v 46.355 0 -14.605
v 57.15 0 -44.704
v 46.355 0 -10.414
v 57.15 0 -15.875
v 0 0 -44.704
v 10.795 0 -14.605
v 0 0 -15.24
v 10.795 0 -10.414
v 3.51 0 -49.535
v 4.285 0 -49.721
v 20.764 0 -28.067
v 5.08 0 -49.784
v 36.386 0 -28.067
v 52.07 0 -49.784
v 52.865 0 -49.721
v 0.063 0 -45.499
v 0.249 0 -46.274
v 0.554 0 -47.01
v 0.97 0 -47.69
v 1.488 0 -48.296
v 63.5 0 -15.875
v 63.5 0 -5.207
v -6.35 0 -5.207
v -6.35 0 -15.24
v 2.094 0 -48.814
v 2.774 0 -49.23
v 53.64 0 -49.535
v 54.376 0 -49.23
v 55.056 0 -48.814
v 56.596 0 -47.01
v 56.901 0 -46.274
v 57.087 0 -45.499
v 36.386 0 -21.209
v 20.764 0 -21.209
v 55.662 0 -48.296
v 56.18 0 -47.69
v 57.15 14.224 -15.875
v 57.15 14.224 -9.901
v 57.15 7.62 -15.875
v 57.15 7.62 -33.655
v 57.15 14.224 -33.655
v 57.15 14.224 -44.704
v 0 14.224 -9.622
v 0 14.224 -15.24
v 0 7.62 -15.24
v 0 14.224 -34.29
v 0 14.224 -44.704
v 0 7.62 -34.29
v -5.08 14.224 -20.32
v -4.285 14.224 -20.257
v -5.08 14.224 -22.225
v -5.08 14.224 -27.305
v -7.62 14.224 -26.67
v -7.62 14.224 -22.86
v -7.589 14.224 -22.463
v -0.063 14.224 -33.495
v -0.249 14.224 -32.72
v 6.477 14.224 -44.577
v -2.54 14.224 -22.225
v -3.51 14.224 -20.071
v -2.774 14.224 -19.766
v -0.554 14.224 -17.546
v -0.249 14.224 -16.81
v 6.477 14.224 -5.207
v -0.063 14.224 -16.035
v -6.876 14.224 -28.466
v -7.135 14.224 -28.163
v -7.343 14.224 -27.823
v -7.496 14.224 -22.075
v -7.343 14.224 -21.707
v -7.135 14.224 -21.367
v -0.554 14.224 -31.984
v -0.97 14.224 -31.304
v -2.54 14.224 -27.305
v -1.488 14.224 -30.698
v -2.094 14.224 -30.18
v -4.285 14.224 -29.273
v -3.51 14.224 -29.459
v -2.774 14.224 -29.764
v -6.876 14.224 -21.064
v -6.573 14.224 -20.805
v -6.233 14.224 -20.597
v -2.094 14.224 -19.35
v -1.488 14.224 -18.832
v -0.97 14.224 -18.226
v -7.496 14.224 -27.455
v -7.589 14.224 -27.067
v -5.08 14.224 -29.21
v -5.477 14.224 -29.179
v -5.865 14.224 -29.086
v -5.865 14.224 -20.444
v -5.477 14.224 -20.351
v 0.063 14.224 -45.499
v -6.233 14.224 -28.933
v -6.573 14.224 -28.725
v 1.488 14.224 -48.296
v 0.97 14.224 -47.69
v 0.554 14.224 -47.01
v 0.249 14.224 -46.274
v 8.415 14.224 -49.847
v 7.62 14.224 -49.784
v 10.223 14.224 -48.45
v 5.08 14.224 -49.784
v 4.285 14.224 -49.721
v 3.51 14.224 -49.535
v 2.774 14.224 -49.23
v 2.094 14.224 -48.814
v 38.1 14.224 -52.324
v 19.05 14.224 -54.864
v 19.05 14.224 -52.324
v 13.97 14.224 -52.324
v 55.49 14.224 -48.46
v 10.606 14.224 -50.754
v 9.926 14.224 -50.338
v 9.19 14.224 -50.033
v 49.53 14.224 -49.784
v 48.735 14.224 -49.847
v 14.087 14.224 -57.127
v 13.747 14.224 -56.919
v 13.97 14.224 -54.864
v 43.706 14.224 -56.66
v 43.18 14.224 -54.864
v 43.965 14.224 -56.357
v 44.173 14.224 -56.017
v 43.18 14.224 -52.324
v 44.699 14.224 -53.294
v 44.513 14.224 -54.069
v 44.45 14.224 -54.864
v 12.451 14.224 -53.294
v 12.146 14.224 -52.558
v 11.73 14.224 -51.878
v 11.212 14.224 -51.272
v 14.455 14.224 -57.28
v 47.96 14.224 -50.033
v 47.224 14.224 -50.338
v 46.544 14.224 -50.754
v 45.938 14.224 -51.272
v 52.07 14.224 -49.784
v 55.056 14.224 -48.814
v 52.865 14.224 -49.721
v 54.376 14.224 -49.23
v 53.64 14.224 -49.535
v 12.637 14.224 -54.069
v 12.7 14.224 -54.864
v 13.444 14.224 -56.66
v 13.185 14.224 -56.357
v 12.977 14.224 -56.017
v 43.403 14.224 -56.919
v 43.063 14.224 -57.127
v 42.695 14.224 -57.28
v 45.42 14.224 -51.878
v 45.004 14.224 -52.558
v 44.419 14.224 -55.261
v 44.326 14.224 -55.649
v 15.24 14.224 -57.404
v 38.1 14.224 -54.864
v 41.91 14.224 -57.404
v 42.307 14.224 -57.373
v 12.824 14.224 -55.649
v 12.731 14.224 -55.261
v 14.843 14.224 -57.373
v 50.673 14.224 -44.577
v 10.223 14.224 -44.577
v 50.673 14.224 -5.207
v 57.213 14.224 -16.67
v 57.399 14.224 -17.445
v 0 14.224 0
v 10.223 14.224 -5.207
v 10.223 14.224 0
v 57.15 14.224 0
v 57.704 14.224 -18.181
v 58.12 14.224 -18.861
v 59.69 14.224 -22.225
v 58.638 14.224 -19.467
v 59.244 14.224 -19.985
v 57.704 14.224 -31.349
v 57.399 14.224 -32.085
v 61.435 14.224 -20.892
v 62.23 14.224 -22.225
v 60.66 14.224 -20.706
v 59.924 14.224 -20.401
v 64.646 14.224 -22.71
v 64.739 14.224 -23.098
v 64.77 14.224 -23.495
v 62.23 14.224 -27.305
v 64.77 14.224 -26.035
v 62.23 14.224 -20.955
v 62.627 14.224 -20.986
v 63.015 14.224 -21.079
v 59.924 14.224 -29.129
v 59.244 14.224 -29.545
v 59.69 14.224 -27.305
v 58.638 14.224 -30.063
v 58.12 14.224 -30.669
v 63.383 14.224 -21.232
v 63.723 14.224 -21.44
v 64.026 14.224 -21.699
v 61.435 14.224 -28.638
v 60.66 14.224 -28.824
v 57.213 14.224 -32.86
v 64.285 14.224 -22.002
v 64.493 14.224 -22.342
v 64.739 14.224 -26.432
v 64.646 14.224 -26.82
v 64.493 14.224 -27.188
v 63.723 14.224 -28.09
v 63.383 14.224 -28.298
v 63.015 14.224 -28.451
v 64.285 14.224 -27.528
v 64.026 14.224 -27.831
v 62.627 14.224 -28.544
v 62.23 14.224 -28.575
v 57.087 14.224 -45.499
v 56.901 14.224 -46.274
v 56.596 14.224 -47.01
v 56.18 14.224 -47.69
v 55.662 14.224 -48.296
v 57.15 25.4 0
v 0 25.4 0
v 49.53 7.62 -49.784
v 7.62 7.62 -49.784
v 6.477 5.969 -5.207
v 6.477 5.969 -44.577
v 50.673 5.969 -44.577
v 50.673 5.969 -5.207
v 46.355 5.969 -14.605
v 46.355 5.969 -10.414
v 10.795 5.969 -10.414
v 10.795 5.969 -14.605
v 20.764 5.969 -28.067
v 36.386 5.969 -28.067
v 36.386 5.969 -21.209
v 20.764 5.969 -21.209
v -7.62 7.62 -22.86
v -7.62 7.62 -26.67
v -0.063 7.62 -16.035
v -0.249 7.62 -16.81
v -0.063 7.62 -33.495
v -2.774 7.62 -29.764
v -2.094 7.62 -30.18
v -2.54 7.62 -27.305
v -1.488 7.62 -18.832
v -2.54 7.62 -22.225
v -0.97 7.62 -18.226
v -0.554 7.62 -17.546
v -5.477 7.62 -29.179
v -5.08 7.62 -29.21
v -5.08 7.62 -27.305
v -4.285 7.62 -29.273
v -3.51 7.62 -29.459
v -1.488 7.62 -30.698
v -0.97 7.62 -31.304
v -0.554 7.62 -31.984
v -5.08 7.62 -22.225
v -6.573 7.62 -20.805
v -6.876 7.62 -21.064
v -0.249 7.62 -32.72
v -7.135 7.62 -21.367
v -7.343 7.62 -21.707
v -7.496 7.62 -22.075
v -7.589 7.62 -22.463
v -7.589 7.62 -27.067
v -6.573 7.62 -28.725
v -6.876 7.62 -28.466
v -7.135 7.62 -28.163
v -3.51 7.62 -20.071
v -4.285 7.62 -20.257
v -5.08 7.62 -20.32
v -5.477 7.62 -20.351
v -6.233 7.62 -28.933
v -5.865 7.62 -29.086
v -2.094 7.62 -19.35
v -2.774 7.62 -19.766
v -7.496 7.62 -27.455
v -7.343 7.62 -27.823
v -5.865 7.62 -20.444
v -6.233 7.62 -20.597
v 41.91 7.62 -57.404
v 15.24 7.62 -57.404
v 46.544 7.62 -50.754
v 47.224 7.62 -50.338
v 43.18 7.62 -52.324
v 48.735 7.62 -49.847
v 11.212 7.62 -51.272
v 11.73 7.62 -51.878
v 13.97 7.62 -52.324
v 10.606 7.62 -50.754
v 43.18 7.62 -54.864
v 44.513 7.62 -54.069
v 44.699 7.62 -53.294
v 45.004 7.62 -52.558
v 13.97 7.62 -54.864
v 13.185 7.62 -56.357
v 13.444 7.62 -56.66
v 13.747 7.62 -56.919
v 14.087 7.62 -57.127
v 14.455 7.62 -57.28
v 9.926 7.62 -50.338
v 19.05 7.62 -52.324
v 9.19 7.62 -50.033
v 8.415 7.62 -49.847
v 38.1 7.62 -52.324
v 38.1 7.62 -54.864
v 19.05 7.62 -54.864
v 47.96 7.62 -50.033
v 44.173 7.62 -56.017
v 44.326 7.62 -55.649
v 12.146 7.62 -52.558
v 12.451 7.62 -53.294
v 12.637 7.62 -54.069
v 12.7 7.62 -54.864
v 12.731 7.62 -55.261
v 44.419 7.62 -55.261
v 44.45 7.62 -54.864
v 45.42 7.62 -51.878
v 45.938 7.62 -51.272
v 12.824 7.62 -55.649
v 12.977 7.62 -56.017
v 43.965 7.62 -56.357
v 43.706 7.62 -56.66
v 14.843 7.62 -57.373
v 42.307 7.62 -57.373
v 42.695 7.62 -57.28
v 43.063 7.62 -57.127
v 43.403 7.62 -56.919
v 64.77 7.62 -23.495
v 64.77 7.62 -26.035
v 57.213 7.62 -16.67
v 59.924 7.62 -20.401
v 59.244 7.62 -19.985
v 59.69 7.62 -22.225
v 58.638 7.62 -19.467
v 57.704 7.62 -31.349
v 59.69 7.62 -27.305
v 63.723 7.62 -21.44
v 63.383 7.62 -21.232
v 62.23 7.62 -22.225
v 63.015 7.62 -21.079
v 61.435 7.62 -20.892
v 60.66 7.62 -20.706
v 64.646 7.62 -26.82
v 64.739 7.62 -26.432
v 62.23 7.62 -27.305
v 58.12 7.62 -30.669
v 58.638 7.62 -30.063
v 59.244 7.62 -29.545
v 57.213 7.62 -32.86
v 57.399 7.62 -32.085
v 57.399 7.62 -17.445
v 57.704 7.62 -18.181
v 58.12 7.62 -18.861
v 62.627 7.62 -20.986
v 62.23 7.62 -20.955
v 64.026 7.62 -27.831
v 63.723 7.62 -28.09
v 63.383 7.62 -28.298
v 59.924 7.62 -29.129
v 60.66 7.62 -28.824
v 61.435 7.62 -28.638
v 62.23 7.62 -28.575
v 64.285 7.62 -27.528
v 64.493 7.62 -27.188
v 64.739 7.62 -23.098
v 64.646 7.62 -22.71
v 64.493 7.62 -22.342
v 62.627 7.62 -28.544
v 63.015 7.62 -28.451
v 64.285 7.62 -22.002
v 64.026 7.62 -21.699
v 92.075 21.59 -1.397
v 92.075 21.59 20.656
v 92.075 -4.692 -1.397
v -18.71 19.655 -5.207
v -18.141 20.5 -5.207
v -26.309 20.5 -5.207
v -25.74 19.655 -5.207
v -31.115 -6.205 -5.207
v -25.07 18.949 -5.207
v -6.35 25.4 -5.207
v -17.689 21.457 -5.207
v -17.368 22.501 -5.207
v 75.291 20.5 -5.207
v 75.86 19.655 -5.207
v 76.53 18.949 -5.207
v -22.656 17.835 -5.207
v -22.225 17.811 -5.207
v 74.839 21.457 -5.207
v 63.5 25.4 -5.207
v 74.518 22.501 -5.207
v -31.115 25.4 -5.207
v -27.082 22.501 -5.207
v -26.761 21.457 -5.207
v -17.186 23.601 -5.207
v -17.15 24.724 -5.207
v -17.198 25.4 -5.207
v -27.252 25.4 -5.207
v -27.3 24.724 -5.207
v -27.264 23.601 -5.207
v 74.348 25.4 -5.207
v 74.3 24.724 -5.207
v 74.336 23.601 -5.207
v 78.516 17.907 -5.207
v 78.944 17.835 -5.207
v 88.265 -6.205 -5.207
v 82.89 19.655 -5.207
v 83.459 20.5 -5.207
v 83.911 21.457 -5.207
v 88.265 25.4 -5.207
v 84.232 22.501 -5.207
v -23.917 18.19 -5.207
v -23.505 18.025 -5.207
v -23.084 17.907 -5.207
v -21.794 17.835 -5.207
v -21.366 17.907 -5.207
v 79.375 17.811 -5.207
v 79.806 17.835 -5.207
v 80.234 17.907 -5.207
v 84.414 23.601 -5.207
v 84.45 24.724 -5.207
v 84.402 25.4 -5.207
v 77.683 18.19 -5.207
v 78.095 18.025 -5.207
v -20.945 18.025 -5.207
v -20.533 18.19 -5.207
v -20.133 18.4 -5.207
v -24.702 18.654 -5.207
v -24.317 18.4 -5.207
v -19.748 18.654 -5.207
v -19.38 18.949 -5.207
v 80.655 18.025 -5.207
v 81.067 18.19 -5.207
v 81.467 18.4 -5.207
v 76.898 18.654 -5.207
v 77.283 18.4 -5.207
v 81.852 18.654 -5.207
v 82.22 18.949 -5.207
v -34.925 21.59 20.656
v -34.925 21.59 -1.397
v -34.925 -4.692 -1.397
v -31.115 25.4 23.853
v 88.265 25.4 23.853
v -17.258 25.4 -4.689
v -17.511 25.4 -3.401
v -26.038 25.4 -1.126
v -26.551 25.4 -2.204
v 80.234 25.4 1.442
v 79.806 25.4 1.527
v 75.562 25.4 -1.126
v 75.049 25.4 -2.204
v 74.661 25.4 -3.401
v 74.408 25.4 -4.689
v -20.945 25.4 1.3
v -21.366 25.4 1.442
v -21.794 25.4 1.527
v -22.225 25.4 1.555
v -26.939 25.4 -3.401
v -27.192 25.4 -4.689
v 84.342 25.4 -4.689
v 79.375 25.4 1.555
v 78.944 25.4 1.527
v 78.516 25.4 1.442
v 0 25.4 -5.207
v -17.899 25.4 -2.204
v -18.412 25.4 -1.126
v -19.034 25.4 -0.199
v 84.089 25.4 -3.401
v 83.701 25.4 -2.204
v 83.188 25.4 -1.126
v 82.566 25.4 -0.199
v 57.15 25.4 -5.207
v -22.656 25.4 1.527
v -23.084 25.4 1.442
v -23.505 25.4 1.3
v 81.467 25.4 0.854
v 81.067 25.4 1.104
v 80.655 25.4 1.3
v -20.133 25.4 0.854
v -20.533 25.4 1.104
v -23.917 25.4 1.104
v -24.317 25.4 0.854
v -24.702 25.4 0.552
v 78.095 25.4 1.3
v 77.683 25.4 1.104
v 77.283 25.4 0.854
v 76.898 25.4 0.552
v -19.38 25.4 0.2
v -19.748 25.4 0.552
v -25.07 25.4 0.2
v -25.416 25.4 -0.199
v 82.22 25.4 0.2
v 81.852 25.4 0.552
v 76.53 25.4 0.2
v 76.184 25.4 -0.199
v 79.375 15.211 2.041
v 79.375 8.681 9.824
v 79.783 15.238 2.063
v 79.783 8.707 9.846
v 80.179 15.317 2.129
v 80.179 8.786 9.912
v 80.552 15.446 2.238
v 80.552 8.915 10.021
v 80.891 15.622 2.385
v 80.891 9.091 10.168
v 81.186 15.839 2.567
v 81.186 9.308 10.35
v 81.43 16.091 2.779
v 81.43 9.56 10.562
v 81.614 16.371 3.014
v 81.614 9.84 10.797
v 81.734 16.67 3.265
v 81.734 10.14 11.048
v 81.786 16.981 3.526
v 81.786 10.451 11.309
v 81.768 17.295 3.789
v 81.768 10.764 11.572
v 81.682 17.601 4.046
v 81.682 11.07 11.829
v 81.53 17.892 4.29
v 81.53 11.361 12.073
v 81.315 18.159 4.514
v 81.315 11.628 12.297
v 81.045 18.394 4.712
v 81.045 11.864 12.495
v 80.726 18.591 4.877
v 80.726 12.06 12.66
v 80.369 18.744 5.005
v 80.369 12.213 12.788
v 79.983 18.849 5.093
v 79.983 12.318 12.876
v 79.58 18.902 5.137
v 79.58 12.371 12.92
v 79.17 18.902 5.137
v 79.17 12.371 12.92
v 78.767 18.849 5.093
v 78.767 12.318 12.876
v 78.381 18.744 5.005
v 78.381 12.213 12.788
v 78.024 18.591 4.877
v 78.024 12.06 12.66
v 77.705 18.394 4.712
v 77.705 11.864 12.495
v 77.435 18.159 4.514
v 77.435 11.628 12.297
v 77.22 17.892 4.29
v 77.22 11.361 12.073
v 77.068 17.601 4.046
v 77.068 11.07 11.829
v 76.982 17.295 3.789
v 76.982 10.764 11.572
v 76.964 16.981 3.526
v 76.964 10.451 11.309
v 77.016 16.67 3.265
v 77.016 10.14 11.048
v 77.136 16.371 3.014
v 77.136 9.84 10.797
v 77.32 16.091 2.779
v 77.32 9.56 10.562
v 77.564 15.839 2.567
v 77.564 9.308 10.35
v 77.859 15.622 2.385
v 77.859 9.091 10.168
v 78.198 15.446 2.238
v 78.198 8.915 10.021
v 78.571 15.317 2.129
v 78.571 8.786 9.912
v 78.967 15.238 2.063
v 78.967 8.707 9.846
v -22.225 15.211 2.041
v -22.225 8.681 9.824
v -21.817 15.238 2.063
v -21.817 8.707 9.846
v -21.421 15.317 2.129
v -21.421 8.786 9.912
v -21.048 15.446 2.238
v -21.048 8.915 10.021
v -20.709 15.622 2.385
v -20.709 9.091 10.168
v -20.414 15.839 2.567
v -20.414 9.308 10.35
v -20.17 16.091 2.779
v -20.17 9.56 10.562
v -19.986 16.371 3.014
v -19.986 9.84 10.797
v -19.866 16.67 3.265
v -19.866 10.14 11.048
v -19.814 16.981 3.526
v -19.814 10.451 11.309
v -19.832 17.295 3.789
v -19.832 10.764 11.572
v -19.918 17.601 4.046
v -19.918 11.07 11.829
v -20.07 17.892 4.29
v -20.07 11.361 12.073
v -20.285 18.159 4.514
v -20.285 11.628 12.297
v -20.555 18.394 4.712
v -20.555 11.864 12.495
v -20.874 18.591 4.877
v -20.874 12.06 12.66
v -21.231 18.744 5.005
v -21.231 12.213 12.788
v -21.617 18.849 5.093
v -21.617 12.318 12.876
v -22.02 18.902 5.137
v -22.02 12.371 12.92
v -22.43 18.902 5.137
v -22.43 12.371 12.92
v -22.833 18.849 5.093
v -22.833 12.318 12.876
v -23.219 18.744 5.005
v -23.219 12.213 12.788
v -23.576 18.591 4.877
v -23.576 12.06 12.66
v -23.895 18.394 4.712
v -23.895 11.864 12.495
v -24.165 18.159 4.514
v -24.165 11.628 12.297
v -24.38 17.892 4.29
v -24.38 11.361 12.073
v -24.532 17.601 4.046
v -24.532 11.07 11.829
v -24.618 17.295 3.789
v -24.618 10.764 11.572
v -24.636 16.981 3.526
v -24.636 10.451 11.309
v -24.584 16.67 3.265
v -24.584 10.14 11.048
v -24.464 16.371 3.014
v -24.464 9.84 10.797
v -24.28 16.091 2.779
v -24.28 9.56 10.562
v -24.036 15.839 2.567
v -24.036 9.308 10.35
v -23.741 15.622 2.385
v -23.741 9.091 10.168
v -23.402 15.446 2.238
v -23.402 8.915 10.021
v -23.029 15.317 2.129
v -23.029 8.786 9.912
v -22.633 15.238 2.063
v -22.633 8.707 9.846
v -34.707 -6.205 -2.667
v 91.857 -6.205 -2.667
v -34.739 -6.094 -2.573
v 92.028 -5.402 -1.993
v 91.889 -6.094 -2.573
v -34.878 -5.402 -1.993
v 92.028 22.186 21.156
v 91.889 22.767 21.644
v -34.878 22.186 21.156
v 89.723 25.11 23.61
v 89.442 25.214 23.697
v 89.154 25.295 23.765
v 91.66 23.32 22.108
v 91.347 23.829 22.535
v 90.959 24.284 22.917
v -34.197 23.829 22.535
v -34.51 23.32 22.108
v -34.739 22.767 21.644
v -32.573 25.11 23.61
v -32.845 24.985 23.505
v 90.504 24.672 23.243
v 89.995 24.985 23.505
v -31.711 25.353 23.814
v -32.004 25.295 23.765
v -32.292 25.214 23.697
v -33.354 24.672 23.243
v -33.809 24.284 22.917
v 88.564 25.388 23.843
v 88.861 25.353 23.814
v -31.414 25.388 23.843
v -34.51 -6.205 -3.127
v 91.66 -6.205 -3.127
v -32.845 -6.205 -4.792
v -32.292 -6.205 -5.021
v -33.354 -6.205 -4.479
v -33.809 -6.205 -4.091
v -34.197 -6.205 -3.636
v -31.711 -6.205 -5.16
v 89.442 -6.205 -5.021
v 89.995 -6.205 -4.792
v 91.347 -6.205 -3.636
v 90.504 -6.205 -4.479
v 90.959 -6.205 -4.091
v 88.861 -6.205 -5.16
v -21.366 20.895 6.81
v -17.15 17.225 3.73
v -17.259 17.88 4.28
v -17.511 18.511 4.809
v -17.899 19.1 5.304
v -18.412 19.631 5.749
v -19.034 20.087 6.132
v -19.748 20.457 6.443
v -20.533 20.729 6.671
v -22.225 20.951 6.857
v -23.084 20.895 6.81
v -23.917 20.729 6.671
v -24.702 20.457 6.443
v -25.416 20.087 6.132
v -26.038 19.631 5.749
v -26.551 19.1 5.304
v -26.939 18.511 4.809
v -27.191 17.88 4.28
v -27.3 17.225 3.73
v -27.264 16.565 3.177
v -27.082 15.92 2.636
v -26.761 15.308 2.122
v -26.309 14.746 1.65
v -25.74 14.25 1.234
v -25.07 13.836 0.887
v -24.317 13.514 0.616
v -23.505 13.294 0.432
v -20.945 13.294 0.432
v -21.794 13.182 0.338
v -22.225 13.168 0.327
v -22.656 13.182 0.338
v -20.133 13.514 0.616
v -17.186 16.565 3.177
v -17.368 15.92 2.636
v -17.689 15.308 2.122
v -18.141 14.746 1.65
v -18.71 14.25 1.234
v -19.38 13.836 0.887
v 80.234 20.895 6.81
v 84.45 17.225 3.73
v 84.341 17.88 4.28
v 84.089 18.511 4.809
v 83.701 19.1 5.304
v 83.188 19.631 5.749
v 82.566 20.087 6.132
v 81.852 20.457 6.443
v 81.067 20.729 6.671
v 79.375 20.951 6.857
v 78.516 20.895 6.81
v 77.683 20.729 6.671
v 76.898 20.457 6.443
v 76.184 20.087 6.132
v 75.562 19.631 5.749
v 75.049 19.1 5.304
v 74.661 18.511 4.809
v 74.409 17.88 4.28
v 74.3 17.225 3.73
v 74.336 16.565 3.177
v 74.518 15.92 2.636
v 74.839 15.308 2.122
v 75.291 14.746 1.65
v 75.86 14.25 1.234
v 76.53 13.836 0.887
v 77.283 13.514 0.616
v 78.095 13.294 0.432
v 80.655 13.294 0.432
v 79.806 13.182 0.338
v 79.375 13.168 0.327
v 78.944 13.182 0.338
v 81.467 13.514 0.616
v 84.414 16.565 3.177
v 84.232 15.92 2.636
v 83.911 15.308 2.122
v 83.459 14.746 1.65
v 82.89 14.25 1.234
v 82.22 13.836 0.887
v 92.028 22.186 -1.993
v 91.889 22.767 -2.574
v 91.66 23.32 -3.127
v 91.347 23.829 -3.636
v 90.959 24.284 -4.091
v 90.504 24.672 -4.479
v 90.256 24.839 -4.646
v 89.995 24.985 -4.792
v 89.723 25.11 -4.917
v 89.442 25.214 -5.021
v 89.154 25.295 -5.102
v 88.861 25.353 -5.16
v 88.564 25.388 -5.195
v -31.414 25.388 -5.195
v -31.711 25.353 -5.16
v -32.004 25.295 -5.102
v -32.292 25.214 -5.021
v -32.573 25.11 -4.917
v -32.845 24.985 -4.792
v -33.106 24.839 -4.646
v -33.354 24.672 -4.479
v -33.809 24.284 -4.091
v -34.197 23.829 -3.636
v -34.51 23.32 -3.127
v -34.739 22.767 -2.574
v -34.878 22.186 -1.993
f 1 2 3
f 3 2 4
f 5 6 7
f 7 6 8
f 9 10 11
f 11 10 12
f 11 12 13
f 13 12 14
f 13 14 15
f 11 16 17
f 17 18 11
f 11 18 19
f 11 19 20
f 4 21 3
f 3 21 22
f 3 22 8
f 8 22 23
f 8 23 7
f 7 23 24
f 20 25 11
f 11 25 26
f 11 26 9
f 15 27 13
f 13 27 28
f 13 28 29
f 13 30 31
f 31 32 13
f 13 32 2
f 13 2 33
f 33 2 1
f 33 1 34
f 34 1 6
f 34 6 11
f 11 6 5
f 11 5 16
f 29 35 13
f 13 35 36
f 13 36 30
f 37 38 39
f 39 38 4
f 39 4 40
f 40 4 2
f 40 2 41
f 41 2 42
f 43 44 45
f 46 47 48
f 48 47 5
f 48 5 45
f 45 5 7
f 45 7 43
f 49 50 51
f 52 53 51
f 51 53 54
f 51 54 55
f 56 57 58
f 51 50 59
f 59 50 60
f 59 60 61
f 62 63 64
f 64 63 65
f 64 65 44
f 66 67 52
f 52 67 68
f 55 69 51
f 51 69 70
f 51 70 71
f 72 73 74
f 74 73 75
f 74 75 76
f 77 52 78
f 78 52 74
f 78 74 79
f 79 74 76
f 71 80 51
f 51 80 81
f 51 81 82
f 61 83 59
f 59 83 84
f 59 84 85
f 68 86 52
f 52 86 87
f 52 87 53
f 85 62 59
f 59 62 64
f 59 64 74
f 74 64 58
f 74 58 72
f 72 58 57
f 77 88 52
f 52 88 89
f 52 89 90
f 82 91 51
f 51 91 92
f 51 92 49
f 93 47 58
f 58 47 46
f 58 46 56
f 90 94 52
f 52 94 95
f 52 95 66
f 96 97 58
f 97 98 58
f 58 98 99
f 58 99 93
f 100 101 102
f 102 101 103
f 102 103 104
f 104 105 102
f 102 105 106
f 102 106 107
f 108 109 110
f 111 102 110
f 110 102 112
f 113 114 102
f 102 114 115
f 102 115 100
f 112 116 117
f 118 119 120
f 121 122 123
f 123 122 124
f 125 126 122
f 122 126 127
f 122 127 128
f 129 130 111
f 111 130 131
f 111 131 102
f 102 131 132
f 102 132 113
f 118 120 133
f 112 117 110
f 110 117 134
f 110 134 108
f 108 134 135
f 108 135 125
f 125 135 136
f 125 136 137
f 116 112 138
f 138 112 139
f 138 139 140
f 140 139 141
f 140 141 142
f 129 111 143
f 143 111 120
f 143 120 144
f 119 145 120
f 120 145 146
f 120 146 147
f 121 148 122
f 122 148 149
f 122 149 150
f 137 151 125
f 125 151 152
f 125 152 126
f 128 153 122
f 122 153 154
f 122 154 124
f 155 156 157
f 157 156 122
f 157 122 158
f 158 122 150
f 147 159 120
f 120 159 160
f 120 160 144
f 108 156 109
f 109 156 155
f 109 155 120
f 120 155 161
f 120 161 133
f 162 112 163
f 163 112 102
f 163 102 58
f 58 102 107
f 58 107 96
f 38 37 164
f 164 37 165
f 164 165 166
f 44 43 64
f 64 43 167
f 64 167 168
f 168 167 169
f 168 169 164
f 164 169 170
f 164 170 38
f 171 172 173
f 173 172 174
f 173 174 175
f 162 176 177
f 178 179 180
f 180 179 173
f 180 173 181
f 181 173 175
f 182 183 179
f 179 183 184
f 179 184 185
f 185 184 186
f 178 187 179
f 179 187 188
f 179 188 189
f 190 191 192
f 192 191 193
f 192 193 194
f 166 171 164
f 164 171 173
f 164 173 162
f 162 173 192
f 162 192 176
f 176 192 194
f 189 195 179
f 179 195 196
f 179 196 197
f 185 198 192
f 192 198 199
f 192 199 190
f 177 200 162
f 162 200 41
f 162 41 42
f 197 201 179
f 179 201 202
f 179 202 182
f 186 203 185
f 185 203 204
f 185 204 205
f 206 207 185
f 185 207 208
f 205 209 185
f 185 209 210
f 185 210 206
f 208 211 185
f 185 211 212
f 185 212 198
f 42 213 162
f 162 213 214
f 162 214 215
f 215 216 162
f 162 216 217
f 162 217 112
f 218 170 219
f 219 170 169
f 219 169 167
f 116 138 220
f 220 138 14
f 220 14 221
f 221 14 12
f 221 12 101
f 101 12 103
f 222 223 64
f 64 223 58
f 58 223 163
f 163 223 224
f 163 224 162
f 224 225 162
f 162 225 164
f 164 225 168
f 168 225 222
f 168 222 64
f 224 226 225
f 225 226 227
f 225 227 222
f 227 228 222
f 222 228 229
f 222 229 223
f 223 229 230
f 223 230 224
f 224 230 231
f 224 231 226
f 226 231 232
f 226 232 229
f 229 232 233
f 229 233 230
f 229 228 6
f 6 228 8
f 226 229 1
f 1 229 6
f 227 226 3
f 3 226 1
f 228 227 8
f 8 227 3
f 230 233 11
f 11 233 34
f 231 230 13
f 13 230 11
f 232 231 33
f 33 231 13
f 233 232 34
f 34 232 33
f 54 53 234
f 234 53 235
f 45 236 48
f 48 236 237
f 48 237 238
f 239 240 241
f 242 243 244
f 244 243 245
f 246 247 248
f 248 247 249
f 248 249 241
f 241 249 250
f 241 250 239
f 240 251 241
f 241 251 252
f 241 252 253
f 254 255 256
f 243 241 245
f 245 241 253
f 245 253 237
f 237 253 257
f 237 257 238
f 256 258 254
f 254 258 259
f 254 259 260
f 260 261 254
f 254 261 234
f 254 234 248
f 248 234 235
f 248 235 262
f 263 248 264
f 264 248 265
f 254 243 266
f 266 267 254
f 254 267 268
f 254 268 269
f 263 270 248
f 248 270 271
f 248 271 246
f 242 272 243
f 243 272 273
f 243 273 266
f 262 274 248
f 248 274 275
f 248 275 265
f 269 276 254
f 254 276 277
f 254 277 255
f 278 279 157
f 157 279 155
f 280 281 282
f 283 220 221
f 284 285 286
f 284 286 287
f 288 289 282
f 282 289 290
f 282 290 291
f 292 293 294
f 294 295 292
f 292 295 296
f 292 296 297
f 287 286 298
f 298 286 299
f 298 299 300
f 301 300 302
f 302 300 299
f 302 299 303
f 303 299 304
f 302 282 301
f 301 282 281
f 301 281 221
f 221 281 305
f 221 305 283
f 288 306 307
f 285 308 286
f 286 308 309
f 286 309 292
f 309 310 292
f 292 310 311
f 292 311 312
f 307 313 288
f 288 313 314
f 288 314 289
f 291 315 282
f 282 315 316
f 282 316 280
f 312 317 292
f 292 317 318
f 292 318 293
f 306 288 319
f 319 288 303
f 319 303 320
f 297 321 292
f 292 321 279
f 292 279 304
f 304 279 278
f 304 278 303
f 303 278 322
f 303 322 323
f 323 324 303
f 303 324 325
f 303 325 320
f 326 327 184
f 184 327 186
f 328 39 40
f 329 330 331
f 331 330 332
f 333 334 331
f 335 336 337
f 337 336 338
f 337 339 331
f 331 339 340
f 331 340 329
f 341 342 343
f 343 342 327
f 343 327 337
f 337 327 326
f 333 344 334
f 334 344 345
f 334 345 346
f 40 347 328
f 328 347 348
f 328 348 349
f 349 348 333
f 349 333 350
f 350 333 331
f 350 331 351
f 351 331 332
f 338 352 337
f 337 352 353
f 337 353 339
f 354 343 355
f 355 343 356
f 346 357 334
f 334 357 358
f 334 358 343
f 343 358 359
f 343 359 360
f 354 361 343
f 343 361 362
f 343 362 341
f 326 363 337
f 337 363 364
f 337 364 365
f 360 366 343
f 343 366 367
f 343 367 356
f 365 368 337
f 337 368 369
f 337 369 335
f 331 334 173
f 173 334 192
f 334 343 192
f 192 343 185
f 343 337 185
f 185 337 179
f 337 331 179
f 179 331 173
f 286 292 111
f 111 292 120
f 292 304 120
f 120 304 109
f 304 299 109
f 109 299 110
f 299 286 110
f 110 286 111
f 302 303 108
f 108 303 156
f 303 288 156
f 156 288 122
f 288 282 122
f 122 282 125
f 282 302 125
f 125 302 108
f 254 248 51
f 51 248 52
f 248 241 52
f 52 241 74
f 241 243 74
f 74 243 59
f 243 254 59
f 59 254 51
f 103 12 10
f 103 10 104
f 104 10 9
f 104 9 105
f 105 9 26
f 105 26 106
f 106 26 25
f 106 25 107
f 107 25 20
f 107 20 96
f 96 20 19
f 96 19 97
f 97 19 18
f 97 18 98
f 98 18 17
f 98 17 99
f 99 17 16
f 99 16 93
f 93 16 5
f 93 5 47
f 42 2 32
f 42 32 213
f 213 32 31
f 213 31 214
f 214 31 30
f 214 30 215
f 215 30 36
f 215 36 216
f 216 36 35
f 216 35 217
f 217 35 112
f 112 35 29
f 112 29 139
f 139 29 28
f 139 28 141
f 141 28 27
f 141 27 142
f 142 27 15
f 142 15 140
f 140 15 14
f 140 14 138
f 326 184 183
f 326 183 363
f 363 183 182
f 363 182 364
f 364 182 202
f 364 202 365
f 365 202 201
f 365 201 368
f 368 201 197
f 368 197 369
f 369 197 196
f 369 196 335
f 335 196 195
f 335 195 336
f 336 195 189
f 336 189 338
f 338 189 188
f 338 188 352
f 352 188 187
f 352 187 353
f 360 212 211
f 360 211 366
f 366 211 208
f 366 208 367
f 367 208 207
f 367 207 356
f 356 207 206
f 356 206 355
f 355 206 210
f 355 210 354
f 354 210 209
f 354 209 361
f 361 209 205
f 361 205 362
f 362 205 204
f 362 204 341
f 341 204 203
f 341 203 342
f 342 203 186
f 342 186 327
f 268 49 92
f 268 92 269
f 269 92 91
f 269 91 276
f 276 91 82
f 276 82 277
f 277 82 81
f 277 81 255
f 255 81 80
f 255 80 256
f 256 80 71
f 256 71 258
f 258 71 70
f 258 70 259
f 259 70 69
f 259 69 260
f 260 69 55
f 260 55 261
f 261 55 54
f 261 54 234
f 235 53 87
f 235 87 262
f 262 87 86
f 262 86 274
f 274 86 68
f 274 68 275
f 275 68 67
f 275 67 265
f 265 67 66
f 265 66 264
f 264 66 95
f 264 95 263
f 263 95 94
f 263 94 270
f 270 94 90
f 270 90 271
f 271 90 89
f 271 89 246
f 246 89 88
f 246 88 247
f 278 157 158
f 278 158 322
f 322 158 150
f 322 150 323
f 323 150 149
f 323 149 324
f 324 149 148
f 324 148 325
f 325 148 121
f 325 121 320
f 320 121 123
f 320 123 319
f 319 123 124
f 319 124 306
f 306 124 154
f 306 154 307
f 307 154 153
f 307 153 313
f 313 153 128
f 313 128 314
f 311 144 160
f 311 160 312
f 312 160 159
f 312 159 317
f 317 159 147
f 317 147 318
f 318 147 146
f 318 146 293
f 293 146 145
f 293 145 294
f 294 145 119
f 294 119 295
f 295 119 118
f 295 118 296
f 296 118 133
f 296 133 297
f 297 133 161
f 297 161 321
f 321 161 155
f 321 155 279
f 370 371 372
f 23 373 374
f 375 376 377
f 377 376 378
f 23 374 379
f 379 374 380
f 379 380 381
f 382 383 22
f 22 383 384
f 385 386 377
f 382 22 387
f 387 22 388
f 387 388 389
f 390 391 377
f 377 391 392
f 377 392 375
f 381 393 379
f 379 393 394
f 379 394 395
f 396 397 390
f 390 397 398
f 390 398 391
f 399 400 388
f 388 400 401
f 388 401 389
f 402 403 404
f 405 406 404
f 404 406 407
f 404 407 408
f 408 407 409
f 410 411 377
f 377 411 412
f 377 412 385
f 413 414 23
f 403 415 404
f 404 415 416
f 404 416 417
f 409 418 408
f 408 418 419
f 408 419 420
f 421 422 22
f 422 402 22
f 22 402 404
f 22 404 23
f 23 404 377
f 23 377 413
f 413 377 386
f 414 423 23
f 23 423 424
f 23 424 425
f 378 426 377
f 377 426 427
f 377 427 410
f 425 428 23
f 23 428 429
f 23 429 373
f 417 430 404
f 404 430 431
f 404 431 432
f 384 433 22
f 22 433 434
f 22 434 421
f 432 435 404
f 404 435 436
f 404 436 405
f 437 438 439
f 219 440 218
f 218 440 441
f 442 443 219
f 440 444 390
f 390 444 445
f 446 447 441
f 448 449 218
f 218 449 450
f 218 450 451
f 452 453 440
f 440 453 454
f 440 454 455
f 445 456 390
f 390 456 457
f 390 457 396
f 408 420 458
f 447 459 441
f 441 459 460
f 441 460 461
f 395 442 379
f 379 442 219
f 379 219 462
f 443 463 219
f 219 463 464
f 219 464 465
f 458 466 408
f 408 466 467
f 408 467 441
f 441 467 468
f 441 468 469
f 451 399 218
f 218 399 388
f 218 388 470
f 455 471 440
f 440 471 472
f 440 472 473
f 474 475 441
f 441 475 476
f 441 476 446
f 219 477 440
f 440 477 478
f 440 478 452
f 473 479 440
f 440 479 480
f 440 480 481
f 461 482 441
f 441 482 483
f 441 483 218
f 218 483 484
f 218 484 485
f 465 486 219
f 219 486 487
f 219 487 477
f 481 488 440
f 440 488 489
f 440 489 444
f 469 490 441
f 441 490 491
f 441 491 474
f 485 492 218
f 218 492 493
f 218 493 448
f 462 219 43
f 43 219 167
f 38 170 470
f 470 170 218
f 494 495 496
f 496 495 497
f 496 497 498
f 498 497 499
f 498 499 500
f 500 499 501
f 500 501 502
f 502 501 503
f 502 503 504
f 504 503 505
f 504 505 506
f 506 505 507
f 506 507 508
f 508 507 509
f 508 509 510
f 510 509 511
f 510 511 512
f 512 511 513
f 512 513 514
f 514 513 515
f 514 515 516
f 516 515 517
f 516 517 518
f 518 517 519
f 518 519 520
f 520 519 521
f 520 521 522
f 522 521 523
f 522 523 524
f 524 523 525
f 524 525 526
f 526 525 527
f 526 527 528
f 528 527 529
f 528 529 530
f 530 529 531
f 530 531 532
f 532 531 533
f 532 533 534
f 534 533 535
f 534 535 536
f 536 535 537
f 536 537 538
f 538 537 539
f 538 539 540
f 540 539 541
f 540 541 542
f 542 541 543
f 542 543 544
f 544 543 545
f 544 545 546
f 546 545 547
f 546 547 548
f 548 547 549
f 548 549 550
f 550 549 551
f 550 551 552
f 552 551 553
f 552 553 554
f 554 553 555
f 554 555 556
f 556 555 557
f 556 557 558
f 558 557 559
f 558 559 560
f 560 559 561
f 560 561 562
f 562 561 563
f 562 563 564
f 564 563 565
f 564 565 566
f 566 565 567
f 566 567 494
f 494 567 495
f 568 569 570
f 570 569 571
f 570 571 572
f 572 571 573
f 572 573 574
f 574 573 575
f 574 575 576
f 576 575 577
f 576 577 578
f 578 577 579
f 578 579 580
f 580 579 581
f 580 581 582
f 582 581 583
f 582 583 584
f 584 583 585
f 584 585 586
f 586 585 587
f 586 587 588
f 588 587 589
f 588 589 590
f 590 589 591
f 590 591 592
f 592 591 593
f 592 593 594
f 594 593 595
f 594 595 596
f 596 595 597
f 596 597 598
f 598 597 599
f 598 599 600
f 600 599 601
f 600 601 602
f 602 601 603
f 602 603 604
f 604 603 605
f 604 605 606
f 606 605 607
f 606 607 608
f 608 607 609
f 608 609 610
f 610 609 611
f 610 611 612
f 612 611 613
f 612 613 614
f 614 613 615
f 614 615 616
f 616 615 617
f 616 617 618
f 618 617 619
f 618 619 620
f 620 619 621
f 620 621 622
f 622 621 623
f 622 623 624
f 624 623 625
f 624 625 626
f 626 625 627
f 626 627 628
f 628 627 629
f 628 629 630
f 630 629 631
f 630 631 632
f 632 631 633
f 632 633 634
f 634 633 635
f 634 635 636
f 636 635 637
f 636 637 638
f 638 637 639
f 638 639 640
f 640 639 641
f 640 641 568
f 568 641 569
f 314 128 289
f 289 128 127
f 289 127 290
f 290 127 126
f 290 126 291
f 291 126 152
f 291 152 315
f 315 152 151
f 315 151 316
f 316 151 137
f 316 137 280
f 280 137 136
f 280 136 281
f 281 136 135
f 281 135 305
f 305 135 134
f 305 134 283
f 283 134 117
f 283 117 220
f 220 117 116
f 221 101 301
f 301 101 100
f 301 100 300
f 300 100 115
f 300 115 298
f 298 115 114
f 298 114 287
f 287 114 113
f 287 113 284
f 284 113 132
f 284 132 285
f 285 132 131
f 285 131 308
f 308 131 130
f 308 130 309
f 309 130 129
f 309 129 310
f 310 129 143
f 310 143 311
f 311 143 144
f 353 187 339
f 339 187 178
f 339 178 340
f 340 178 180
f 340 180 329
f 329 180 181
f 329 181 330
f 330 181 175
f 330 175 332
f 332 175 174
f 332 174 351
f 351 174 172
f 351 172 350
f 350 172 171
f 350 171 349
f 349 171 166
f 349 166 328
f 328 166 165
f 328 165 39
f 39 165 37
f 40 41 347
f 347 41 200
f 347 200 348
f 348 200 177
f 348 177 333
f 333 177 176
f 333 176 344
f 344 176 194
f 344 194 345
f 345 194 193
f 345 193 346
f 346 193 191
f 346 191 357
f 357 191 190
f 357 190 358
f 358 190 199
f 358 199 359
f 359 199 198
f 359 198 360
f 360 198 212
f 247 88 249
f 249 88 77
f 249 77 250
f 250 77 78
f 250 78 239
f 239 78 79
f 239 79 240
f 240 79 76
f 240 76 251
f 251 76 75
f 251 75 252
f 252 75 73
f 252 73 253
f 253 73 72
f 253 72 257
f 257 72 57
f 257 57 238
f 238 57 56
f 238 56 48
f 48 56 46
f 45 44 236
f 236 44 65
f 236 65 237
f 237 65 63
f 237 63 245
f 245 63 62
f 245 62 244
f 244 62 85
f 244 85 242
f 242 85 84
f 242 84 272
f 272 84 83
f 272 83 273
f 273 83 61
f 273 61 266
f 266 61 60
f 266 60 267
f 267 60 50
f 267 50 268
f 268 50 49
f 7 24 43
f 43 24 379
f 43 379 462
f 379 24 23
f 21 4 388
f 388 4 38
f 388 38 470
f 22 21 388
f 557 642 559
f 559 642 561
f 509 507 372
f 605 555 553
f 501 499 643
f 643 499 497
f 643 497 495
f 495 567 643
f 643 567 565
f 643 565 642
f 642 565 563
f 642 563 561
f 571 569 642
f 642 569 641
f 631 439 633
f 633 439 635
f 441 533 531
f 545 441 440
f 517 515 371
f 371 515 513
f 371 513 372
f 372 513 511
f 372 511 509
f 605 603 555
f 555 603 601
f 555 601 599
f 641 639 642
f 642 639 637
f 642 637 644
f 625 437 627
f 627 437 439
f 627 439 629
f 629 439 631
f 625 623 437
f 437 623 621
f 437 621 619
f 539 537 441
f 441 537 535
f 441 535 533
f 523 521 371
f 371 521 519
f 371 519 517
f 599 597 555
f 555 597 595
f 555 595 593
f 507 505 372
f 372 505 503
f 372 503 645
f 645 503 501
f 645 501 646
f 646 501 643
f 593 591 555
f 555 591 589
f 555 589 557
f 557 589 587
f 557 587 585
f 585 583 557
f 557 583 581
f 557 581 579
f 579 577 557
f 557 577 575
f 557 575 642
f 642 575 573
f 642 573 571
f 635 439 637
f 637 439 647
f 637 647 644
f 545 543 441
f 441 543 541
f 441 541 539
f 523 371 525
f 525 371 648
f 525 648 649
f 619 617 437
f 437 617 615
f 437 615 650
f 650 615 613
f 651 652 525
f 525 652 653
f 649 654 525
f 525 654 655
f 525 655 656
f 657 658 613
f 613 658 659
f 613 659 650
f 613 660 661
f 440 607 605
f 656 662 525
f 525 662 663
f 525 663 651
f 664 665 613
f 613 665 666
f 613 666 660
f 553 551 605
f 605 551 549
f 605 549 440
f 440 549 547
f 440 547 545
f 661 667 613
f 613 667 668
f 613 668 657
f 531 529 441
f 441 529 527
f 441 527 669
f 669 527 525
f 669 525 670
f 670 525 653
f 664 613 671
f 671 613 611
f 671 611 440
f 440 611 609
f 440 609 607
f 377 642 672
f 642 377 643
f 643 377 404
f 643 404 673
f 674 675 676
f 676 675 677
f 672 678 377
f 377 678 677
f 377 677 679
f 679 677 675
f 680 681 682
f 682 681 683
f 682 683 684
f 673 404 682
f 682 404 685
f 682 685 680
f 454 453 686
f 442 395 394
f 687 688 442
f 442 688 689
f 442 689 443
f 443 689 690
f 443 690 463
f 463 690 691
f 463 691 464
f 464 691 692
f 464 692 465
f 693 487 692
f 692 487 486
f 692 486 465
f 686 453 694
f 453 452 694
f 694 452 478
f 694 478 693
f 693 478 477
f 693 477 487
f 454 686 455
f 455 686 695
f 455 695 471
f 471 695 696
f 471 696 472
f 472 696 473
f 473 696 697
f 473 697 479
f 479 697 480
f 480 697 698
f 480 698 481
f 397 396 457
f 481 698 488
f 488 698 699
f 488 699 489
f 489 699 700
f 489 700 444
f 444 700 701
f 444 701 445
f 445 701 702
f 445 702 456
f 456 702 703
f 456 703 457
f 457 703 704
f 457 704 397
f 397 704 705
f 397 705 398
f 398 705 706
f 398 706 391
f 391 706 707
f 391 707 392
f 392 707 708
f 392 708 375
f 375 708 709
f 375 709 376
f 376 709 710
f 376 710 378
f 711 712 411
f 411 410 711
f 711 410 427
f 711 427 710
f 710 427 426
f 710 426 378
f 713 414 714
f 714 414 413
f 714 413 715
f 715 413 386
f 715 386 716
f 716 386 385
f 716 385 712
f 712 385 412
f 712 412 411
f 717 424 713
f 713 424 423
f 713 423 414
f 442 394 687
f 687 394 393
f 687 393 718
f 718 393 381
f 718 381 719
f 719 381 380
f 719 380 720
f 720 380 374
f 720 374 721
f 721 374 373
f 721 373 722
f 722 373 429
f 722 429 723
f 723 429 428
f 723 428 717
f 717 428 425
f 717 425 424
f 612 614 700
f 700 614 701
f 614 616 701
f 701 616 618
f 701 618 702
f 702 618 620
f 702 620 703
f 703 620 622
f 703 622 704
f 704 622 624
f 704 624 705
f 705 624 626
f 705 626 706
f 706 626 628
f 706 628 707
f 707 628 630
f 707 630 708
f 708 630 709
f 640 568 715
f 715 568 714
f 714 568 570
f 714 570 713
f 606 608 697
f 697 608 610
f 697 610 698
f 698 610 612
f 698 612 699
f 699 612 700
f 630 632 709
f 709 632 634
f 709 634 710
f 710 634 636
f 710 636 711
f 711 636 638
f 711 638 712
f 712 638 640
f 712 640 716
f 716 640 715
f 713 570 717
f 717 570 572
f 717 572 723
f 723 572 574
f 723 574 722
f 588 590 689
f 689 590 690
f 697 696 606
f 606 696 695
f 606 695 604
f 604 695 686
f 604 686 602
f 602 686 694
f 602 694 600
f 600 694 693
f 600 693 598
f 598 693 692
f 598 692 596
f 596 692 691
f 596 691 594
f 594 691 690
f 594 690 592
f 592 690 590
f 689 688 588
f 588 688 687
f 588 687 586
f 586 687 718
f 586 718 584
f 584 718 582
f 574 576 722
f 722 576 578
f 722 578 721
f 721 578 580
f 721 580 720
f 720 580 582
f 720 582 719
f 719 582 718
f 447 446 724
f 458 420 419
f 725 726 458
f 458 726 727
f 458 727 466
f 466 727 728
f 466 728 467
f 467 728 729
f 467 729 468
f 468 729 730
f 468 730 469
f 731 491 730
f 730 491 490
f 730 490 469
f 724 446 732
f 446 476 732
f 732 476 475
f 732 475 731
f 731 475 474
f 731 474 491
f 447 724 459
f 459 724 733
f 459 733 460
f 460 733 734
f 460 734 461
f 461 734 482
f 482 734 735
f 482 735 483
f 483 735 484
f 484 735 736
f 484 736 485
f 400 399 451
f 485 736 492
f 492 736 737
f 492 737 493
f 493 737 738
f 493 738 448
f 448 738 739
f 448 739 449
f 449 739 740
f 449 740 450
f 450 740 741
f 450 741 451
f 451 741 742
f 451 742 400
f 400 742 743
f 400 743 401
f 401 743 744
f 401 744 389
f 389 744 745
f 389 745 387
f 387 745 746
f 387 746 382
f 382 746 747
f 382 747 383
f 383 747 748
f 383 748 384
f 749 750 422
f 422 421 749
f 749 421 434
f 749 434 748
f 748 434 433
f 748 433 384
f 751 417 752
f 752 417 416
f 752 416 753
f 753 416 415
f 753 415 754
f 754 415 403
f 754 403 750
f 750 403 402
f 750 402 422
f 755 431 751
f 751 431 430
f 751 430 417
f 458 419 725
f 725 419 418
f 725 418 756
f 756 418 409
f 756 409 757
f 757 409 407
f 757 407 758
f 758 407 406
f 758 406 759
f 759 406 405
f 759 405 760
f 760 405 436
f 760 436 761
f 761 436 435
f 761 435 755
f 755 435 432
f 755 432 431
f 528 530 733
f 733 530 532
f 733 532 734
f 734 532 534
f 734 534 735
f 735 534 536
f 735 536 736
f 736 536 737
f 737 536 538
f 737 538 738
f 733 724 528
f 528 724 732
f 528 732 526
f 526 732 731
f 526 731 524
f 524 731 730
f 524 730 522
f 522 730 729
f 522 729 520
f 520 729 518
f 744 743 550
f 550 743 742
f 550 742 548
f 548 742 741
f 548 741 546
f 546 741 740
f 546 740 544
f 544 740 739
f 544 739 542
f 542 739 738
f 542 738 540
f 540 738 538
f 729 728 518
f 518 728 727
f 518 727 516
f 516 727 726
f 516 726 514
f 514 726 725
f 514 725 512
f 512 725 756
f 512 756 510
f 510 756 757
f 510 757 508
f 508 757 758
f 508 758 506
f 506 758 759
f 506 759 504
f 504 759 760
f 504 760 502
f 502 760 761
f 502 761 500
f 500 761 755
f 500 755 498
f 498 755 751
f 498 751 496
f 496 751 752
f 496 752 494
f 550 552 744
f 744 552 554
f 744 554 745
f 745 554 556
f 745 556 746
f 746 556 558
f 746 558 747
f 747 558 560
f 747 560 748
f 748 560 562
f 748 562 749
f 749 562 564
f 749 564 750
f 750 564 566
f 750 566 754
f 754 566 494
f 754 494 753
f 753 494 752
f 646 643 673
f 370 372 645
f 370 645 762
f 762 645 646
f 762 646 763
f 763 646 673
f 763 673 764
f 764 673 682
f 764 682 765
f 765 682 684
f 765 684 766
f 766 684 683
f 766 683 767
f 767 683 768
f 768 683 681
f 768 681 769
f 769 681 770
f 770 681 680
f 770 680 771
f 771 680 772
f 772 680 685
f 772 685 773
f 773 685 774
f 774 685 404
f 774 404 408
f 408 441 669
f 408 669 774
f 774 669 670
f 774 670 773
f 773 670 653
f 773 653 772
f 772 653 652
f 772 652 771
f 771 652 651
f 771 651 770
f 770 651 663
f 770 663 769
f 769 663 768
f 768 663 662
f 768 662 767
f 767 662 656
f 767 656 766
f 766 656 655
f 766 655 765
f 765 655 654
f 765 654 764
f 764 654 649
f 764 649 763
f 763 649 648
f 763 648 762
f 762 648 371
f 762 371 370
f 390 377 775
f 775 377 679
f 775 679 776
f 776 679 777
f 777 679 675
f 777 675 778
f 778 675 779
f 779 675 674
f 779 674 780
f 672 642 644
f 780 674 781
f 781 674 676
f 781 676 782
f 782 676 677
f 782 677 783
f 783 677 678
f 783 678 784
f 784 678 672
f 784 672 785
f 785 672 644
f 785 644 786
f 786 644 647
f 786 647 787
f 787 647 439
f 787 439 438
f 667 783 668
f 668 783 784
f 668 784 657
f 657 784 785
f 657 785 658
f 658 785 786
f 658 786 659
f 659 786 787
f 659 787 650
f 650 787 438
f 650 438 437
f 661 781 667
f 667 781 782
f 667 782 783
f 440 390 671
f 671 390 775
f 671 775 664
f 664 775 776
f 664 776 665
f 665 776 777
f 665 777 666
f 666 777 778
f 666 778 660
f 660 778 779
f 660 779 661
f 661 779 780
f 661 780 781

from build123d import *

# Parameters (mm, degrees)
SKETCH2_W           = 57.15
SKETCH2_H           = 49.784
BOSS_EXTRUDE1_DEPTH = 14.224
SKETCH3_W           = 44.196
SKETCH3_H           = 39.37
CUT_EXTRUDE1_DEPTH  = 8.255
SKETCH4_W           = 35.56
SKETCH4_H           = 4.191
SKETCH4_W_2         = 15.621
SKETCH4_H_2         = 6.858
CUT_EXTRUDE2_DEPTH  = 8.255
SKETCH5_W           = 7.62
SKETCH5_H           = 8.89
SKETCH5_H_2         = 7.62
BOSS_EXTRUDE2_DEPTH = 6.604
SKETCH6_W           = 2.54
SKETCH6_H           = 5.08
SKETCH6_W_2         = 5.08
SKETCH6_H_2         = 2.54
CUT_EXTRUDE3_DEPTH  = 6.604
FILLET1_R           = 5.08
FILLET2_R           = 2.54
SKETCH7_W           = 127
SKETCH7_H           = 14.224
SKETCH7_R           = 2.38125
BOSS_EXTRUDE3_DEPTH = 5.207
BOSS_EXTRUDE4_DEPTH = 127
SKETCH11_W          = 34.925
SKETCH11_H          = 11.176
BOSS_EXTRUDE5_DEPTH = 5.207
SKETCH9_R           = 2.413
CUT_EXTRUDE4_DEPTH  = 25.4
FILLET3_R           = 5.08
FILLET4_R           = 5.08
BOSS_EXTRUDE6_DEPTH = 6.35
BOSS_EXTRUDE7_DEPTH = 6.35
BOSS_EXTRUDE8_DEPTH = 127
BOSS_EXTRUDE9_DEPTH = 127
CUT_EXTRUDE6_START  = -1.945752886
SKETCH16_R          = 2.413
CUT_EXTRUDE6_DEPTH  = 1.945752886
CUT_EXTRUDE9_START  = -22.261352
SKETCH17_R          = 5.08
CUT_EXTRUDE9_DEPTH  = 12.101352
FILLET5_R           = 3.81


with BuildPart() as part:
    # Sketch2 → Boss-Extrude1 (new body)
    with BuildSketch(Plane(origin=(0, 0, 0), x_dir=(1, 0, 0), z_dir=(0, 1, 0))):
        with Locations((28.575, 24.892)):
            Rectangle(SKETCH2_W, SKETCH2_H)
    extrude(amount=BOSS_EXTRUDE1_DEPTH)

    # Sketch3 → Cut-Extrude1 (cut)
    with BuildSketch(Plane(origin=(0, 14.224, 0), x_dir=(1, 0, 0), z_dir=(0, 1, 0))):
        with Locations((28.575, 24.892)):
            Rectangle(SKETCH3_W, SKETCH3_H)
    extrude(amount=-CUT_EXTRUDE1_DEPTH, mode=Mode.SUBTRACT)

    # Sketch4 → Cut-Extrude2 (cut)
    with BuildSketch(Plane(origin=(0, 5.969, 0), x_dir=(1, 0, 0), z_dir=(0, 1, 0))):
        with Locations((28.575, 12.5095)):
            Rectangle(SKETCH4_W, SKETCH4_H)
        with Locations((28.575, 24.638)):
            Rectangle(SKETCH4_W_2, SKETCH4_H_2)
    extrude(amount=-CUT_EXTRUDE2_DEPTH, mode=Mode.SUBTRACT)

    # Sketch5 → Boss-Extrude2 (add)
    with BuildSketch(Plane(origin=(0, 14.224, 0), x_dir=(1, 0, 0), z_dir=(0, 1, 0))):
        with Locations((-3.81, 24.765)):
            Rectangle(SKETCH5_W, SKETCH5_H)
        Polygon((12.7, 49.784), (36.83, 49.784), (44.45, 49.784), (44.45, 57.404), (36.83, 57.404), (12.7, 57.404), align=None)
        with Locations((60.96, 24.765)):
            Rectangle(SKETCH5_W, SKETCH5_H_2)
    extrude(amount=-BOSS_EXTRUDE2_DEPTH)

    # Sketch6 → Cut-Extrude3 (cut)
    with BuildSketch(Plane(origin=(0, 14.224, 0), x_dir=(1, 0, 0), z_dir=(0, 1, 0))):
        with Locations((-3.81, 24.765)):
            Rectangle(SKETCH6_W, SKETCH6_H)
        with Locations((60.96, 24.765)):
            Rectangle(SKETCH6_W, SKETCH6_H)
        with Locations((16.51, 53.594)):
            Rectangle(SKETCH6_W_2, SKETCH6_H_2)
        with Locations((40.64, 53.594)):
            Rectangle(SKETCH6_W_2, SKETCH6_H_2)
    extrude(amount=-CUT_EXTRUDE3_DEPTH, mode=Mode.SUBTRACT)

    # Fillet1
    fillet1_edges = [part.edges().sort_by_distance(p)[0] for p in [
        (0, 7.112, -49.784),
        (57.15, 7.112, -49.784),
        (57.15, 7.112, 0),
        (0, 7.112, 0),
    ]]
    fillet(fillet1_edges, radius=FILLET1_R)

    # Fillet2
    fillet2_edges = [part.edges().sort_by_distance(p)[0] for p in [
        (-7.62, 10.922, -20.32),
        (-7.62, 10.922, -29.21),
        (12.7, 10.922, -57.404),
        (44.45, 10.922, -57.404),
        (64.77, 10.922, -28.575),
        (64.77, 10.922, -20.955),
    ]]
    fillet(fillet2_edges, radius=FILLET2_R)

    # Sketch7 → Boss-Extrude3 (add)
    with BuildSketch(Plane.XY):
        with Locations((28.575, 7.112)):
            Rectangle(SKETCH7_W, SKETCH7_H)
        with Locations((-30.861, 7.112)):
            Circle(SKETCH7_R, mode=Mode.SUBTRACT)
        with Locations((88.011, 7.112)):
            Circle(SKETCH7_R, mode=Mode.SUBTRACT)
    extrude(amount=-BOSS_EXTRUDE3_DEPTH)

    # Sketch8 → Boss-Extrude4 (add)
    with BuildSketch(Plane.ZY.offset(34.925)):
        Polygon((0, 25.4), (21.313130632, 25.4), (0, 0), (-5.207, 0), (-5.207, 14.224), (0, 14.224), align=None)
    extrude(amount=-BOSS_EXTRUDE4_DEPTH)

    # Sketch11 → Boss-Extrude5 (add)
    with BuildSketch(Plane(origin=(0, 0, 0), x_dir=(-1, 0, 0), z_dir=(0, 0, -1))):
        with Locations((17.4625, 19.812)):
            Rectangle(SKETCH11_W, SKETCH11_H)
        with Locations((-74.6125, 19.812)):
            Rectangle(SKETCH11_W, SKETCH11_H)
    extrude(amount=BOSS_EXTRUDE5_DEPTH)

    # Sketch9 → Cut-Extrude4 (cut, symmetric)
    with BuildSketch(Plane(origin=(0, 0, 0), x_dir=(1, 0, 0), z_dir=(0, -0.6427876096865434, 0.7660444431189748))):
        with Locations(Location((-22.225, 15.377345149, 0), (0, 0, 270))):
            Circle(SKETCH9_R)
        with Locations(Location((79.375, 15.377345149, 0), (0, 0, 270))):
            Circle(SKETCH9_R)
    extrude(amount=CUT_EXTRUDE4_DEPTH, both=True, mode=Mode.SUBTRACT)

    # Fillet3
    fillet3_edges = [part.edges().sort_by_distance(p)[0] for p in [
        (44.45, 10.922, -49.784),
        (12.7, 10.922, -49.784),
    ]]
    fillet(fillet3_edges, radius=FILLET3_R - 0.0001)  # a hair under: the kernel refuses the full size

    # Fillet4
    fillet4_edges = [part.edges().sort_by_distance(p)[0] for p in [
        (57.15, 10.922, -20.955),
        (57.15, 10.922, -28.575),
        (0, 10.922, -29.21),
        (0, 10.922, -20.32),
    ]]
    fillet(fillet4_edges, radius=FILLET4_R - 0.0001)  # a hair under: the kernel refuses the full size

    # Sketch12 → Boss-Extrude6 (add)
    with BuildSketch(Plane.ZY):
        Polygon((-5.207, 25.4), (-15.24, 0), (-5.207, 0), align=None)
    extrude(amount=BOSS_EXTRUDE6_DEPTH)

    # Sketch13 → Boss-Extrude7 (add)
    with BuildSketch(Plane(origin=(57.15, 0, 0), x_dir=(0, 0, -1), z_dir=(1, 0, 0))):
        Polygon((5.207, 25.4), (15.875, 0), (5.207, 0), align=None)
    extrude(amount=BOSS_EXTRUDE7_DEPTH)

    # Sketch14 → Boss-Extrude8 (add)
    with BuildSketch(Plane.ZY.offset(34.925)):
        Polygon((-5.207, 0), (-5.207, -6.205460957), (0, 0), align=None)
    extrude(amount=-BOSS_EXTRUDE8_DEPTH)

    # Sketch15 → Boss-Extrude9 (add)
    with BuildSketch(Plane(origin=(92.075, 0, 0), x_dir=(0, 0, -1), z_dir=(1, 0, 0))):
        Polygon((5.207, -6.205460957), (2.667, -6.205460957), (-23.853130632, 25.4), (-21.313130632, 25.4), align=None)
    extrude(amount=-BOSS_EXTRUDE9_DEPTH)

    # Sketch16 → Cut-Extrude6 (cut)
    with BuildSketch(Plane(origin=(0, 0, 0), x_dir=(-1, 0, 0), z_dir=(0, 0.6427876096865434, -0.7660444431189748)).offset(CUT_EXTRUDE6_START)):
        with Locations(Location((-79.375, 15.377345149, 0), (0, 0, 270))):
            Circle(SKETCH16_R)
        with Locations(Location((22.225, 15.377345149, 0), (0, 0, 270))):
            Circle(SKETCH16_R)
    extrude(amount=CUT_EXTRUDE6_DEPTH, mode=Mode.SUBTRACT)

    # Sketch17 → Cut-Extrude9 (cut)
    with BuildSketch(Plane(origin=(0, -1.250705846, 1.490533186), x_dir=(1, 0, 0), z_dir=(0, -0.6427876096865434, 0.7660444431189747)).offset(CUT_EXTRUDE9_START)):
        with Locations(Location((79.375, 15.377345149, 0), (0, 0, 171.701605742))):
            Circle(SKETCH17_R)
        with Locations(Location((-22.225, 15.377345149, 0), (0, 0, 8.298394258))):
            Circle(SKETCH17_R)
    extrude(amount=CUT_EXTRUDE9_DEPTH, mode=Mode.SUBTRACT)

    # Fillet5
    fillet5_edges = [part.edges().sort_by_distance(p)[0] for p in [
        (-34.925, 25.4, 9.323065316),
        (92.075, 25.4, 9.323065316),
        (92.075, 9.597269522, -5.207),
        (-34.925, 9.597269522, -5.207),
    ]]
    fillet(fillet5_edges, radius=FILLET5_R)


solid = part.part
